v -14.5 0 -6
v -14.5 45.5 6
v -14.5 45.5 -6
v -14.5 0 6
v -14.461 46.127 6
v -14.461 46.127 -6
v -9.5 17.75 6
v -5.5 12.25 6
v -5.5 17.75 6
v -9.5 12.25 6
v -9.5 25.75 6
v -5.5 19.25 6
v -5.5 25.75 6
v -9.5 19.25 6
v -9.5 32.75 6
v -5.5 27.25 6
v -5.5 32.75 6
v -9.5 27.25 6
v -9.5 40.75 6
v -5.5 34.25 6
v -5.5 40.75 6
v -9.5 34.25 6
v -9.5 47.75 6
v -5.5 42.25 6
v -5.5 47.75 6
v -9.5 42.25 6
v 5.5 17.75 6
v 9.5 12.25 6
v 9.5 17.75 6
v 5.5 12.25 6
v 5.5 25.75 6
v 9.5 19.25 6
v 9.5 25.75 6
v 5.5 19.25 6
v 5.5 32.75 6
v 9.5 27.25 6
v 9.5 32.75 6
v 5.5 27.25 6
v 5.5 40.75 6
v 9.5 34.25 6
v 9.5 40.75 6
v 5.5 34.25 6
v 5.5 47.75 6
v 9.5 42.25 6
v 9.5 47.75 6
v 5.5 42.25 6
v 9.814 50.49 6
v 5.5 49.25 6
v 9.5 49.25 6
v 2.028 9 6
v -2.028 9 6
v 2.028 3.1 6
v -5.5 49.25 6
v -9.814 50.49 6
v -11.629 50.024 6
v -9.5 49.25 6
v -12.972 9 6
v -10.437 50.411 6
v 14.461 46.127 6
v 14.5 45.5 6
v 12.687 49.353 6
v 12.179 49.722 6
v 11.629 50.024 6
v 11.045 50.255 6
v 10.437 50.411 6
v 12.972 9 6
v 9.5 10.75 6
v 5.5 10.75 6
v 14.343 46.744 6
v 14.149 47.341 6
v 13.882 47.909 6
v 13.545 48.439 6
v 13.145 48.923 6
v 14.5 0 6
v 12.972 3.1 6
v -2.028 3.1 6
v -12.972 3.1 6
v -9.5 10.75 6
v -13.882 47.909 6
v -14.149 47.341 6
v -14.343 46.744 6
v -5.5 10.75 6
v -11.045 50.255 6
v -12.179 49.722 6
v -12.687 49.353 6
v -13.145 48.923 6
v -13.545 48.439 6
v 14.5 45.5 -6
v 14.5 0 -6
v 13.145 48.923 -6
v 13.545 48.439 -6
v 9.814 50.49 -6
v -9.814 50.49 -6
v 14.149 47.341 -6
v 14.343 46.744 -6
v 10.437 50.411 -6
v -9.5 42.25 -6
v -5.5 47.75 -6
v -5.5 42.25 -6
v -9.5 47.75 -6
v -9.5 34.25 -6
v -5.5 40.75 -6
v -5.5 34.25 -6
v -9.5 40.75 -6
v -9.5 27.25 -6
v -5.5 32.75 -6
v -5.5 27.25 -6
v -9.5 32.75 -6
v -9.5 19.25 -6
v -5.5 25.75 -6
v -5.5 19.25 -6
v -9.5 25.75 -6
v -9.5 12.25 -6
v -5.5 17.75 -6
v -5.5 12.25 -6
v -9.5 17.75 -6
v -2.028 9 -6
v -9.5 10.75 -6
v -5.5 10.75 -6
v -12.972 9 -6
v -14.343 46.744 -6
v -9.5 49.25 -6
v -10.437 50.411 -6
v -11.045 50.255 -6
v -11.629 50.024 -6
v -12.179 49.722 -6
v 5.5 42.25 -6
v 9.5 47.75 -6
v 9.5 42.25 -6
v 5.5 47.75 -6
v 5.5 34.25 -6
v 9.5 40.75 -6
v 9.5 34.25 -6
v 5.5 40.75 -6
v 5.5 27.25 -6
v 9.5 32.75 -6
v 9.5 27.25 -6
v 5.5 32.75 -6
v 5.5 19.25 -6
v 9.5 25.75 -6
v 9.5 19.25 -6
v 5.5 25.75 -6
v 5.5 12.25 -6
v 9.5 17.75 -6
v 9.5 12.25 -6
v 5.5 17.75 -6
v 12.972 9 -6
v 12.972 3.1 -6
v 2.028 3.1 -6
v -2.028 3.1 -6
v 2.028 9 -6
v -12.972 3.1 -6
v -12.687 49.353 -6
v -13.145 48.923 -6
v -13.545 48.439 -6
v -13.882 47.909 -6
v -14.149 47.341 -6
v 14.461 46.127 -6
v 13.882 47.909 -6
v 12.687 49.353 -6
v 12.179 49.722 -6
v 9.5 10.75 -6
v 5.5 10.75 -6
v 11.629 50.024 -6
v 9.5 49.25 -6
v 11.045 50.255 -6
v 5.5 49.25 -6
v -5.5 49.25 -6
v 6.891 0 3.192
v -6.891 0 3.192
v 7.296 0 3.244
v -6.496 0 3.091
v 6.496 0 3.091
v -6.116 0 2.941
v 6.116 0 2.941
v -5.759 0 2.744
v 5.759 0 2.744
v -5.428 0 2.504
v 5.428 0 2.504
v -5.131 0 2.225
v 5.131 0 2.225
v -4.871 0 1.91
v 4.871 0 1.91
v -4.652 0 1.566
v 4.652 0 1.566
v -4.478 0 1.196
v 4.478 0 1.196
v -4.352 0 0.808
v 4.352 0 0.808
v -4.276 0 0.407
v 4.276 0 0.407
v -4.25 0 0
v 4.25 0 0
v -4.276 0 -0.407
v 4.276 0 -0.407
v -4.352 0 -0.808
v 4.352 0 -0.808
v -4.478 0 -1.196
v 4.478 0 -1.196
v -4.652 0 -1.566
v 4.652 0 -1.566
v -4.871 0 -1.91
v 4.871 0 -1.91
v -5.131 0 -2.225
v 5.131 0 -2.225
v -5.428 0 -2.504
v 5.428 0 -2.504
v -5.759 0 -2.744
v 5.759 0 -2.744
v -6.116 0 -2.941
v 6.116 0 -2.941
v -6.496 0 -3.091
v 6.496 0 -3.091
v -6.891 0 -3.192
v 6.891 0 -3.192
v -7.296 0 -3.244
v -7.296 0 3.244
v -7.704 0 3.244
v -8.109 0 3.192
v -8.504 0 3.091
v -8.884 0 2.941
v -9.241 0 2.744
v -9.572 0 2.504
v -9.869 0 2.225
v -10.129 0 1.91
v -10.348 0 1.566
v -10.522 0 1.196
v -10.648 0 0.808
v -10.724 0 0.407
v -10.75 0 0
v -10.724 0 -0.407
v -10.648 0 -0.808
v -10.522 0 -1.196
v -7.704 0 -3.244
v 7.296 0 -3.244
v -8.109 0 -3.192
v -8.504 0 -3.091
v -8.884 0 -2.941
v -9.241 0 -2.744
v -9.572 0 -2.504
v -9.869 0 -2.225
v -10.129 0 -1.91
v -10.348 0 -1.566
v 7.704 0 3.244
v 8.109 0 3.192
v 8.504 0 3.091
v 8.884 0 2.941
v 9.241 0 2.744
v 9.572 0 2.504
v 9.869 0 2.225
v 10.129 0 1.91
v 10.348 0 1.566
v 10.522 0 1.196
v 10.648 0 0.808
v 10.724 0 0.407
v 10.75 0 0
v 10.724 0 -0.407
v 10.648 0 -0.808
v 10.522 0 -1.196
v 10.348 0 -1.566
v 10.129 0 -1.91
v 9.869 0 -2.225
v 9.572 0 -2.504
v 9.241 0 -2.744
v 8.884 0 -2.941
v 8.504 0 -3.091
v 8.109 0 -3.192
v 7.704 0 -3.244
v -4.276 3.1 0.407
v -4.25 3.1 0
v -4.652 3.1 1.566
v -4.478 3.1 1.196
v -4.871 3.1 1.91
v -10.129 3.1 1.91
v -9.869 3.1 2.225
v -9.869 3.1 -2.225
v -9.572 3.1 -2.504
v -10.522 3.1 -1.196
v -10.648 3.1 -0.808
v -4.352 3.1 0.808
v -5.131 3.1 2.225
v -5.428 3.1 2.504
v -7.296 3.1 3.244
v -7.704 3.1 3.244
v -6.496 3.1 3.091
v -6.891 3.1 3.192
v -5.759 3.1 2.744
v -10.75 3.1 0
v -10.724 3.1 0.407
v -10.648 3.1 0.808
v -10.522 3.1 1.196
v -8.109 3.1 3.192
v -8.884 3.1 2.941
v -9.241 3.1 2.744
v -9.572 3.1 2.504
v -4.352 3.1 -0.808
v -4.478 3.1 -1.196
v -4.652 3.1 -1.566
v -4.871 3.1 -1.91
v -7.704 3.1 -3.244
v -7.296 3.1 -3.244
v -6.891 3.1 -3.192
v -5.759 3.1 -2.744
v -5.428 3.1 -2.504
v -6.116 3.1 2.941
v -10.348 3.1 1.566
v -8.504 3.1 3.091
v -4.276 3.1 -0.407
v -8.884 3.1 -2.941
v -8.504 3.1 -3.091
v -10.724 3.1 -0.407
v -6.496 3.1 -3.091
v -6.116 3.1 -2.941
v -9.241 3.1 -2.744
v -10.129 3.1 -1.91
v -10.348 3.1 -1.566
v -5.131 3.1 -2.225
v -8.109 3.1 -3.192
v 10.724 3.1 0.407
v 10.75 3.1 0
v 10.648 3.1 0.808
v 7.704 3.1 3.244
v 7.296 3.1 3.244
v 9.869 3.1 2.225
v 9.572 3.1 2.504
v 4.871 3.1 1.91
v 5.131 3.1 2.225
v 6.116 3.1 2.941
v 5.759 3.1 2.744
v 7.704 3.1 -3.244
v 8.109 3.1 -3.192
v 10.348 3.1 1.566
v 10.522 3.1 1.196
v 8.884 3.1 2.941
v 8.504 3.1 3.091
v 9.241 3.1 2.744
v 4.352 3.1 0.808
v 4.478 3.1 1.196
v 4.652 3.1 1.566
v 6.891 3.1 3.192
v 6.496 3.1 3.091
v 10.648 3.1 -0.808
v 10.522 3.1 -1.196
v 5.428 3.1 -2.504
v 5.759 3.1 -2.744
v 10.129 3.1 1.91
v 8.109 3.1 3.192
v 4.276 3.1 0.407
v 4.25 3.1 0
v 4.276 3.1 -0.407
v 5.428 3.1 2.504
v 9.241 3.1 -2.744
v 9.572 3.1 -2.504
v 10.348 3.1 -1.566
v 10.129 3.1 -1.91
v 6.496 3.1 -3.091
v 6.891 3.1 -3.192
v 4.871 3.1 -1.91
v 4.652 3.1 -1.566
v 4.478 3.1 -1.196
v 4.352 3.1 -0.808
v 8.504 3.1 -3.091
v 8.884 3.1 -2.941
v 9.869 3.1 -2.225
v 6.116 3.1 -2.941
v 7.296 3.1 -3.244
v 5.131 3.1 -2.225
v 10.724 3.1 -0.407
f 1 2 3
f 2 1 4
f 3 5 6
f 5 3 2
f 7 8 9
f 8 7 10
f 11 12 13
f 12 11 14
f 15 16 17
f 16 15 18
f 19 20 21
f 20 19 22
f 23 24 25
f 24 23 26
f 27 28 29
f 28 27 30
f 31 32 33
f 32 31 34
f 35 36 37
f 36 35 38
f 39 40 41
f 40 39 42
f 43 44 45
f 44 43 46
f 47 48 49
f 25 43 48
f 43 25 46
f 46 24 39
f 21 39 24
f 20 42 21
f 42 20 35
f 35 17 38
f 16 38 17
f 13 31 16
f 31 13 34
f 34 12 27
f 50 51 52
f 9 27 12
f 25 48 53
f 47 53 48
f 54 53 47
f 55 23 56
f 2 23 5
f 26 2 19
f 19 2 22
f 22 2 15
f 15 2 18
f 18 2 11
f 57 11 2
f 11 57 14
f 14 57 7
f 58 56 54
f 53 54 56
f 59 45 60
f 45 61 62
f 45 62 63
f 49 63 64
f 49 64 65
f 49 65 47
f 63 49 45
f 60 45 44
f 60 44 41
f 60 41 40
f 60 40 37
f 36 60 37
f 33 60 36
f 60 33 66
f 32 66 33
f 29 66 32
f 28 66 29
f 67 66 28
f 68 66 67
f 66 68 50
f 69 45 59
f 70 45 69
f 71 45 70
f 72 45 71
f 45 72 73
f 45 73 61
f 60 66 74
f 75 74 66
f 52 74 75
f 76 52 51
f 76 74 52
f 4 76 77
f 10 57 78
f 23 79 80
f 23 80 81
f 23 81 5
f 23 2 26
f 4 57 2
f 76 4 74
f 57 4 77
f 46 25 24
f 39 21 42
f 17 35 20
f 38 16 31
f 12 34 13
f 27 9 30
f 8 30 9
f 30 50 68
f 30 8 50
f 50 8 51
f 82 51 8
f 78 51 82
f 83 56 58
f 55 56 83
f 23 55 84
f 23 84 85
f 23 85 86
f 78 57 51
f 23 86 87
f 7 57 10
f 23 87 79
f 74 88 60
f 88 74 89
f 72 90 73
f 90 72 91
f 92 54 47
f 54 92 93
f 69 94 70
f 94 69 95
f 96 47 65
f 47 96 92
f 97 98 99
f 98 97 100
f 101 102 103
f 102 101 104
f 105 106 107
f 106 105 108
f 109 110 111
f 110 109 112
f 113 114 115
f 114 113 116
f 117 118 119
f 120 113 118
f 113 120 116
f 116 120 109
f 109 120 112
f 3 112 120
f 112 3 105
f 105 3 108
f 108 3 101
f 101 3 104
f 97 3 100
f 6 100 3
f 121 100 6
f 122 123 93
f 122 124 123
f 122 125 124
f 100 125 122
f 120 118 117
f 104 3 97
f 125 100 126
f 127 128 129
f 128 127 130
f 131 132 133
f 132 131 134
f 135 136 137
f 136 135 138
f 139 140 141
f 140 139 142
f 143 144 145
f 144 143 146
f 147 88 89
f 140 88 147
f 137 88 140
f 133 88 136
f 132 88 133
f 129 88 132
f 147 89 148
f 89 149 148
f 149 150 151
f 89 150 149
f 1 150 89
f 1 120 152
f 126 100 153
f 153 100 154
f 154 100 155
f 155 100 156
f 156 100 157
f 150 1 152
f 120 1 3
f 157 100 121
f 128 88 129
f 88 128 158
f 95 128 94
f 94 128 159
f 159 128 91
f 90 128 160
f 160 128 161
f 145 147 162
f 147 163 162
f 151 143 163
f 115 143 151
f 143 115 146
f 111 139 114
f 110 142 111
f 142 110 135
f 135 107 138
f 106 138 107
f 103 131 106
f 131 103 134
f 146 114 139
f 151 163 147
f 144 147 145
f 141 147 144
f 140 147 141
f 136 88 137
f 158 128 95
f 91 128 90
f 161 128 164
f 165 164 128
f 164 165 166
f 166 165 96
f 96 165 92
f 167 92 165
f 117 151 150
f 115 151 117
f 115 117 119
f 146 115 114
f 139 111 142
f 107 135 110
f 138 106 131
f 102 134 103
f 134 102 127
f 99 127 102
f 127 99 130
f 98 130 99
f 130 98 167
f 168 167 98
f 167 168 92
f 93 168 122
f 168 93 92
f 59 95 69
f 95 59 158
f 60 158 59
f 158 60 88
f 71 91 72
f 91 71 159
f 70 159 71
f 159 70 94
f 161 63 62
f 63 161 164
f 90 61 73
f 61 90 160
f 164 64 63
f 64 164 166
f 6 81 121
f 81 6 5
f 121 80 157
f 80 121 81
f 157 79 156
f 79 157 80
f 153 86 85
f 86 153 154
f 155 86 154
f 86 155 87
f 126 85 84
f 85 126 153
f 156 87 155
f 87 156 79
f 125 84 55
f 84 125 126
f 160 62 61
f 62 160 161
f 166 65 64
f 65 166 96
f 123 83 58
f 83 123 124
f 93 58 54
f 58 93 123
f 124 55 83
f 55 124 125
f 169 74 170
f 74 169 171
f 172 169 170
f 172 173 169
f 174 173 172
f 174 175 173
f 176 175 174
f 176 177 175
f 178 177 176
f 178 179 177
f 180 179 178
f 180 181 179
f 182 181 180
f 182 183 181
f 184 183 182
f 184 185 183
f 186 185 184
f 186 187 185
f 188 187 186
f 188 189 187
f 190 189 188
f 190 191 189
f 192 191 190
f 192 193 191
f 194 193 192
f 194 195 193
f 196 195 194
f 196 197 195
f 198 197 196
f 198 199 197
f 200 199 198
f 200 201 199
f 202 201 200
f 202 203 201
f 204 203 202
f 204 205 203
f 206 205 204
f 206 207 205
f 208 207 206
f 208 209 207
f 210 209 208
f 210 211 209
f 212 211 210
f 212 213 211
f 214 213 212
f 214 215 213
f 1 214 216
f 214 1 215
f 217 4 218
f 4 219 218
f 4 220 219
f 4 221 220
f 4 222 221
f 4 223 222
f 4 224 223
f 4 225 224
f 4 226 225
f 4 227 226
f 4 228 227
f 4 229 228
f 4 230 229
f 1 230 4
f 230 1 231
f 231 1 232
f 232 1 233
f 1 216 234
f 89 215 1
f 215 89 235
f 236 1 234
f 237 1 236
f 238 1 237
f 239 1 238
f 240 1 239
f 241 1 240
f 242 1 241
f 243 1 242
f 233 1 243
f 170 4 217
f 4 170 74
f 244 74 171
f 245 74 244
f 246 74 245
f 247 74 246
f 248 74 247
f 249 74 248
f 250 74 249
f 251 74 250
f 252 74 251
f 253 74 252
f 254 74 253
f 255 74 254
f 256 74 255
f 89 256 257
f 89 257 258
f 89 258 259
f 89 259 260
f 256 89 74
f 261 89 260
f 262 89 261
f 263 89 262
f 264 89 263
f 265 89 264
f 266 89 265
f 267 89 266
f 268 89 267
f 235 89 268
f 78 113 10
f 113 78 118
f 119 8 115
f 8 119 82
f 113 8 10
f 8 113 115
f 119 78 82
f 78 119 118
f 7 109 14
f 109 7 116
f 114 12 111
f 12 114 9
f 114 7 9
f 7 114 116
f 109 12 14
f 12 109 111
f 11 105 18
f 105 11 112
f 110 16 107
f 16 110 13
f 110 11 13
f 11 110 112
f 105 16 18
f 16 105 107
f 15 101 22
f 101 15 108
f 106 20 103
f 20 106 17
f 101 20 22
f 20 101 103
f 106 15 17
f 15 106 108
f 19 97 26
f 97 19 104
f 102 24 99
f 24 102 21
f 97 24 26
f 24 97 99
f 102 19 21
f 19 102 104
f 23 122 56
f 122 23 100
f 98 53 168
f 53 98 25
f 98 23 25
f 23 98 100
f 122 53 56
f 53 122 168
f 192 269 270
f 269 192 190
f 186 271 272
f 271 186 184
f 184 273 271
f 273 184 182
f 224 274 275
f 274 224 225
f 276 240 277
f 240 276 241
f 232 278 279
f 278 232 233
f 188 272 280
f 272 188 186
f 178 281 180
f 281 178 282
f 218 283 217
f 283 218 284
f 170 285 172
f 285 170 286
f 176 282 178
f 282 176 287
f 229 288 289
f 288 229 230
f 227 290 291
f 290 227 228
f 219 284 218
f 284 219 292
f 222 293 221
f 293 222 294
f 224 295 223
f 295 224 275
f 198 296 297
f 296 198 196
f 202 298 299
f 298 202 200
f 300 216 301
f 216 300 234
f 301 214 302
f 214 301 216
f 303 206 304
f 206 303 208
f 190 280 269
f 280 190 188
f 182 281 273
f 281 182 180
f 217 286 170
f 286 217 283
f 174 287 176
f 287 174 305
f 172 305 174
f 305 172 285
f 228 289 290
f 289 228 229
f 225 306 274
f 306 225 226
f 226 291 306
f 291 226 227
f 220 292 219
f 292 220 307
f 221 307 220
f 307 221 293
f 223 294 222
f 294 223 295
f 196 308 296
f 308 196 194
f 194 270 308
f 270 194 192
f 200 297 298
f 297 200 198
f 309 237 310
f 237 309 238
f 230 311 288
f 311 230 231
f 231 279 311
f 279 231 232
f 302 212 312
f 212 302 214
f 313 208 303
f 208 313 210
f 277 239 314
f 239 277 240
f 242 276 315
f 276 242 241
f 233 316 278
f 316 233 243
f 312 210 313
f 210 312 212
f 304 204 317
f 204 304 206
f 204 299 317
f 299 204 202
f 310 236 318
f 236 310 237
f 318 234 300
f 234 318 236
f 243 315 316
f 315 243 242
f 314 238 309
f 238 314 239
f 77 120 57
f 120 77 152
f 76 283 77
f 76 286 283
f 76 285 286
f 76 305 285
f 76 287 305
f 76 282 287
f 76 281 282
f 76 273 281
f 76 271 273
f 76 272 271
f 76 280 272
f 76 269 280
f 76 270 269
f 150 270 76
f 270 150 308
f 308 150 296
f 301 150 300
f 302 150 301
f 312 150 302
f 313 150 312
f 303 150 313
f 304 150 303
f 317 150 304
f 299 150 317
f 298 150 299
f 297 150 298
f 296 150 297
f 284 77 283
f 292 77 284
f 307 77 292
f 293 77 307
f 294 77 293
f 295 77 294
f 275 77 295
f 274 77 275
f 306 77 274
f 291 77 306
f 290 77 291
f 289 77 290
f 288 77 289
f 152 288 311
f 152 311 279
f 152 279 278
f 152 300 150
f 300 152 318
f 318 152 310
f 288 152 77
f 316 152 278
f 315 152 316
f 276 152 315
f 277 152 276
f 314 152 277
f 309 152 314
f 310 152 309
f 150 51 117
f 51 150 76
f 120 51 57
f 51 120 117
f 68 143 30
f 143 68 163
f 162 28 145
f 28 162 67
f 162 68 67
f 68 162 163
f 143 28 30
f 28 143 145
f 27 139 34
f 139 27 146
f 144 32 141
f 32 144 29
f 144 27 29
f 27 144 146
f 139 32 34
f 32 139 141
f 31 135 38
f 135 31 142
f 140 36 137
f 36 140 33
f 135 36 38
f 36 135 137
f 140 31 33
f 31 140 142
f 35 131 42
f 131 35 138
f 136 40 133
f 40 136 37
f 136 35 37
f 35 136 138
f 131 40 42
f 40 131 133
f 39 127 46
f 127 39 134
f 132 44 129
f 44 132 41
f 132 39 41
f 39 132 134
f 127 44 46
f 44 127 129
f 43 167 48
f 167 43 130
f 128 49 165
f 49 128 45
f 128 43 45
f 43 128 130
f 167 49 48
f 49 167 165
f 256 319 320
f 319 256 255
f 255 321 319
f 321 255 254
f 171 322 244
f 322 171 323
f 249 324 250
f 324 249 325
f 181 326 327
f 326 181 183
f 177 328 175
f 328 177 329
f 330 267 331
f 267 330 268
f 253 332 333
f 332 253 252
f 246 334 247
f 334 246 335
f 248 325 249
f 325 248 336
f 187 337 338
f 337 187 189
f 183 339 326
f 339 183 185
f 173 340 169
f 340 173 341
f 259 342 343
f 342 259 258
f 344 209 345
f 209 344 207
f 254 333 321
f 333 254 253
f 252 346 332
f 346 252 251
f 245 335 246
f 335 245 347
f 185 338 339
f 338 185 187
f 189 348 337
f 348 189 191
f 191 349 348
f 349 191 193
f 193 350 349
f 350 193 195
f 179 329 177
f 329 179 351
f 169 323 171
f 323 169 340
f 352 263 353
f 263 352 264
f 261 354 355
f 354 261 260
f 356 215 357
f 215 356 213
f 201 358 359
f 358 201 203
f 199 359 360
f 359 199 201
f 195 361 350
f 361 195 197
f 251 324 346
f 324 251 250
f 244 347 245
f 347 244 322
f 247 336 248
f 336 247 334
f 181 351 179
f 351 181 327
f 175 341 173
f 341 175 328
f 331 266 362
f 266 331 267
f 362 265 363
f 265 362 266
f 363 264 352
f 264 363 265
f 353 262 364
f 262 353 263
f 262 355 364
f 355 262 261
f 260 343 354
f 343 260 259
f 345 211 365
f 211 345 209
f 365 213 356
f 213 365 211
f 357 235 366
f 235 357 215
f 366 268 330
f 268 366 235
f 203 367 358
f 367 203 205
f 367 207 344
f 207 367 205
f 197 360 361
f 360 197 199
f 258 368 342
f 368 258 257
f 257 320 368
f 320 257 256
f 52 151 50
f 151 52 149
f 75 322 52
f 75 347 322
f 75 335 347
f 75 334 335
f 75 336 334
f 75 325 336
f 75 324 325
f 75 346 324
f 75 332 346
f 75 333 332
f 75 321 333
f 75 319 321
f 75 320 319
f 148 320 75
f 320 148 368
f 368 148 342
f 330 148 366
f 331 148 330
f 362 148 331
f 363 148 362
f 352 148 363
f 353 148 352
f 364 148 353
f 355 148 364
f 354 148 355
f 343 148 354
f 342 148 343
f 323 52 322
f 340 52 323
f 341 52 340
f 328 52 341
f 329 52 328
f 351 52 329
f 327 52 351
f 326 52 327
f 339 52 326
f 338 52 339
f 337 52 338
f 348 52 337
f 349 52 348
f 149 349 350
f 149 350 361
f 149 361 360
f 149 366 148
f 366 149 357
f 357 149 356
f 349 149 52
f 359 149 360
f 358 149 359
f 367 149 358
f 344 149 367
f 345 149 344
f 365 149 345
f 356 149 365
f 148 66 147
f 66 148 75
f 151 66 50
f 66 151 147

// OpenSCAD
$fn = 50;


difference() {
	union() {
		translate(v = [0, 28.5000000000, -6.0000000000]) {
			rotate(a = [0, 0, 0]) {
				hull() {
					translate(v = [-9.5000000000, 17.0000000000, 0]) {
						rotate(a = [0, 0, 0]) {
							translate(v = [0, 0, 0]) {
								rotate(a = [0, 0, 0]) {
									cylinder(h = 12, r = 5);
								}
							}
						}
					}
					translate(v = [9.5000000000, 17.0000000000, 0]) {
						rotate(a = [0, 0, 0]) {
							translate(v = [0, 0, 0]) {
								rotate(a = [0, 0, 0]) {
									cylinder(h = 12, r = 5);
								}
							}
						}
					}
					translate(v = [-9.5000000000, -17.0000000000, 0]) {
						rotate(a = [0, 0, 0]) {
							translate(v = [0, 0, 0]) {
								rotate(a = [0, 0, 0]) {
									cylinder(h = 12, r = 5);
								}
							}
						}
					}
					translate(v = [9.5000000000, -17.0000000000, 0]) {
						rotate(a = [0, 0, 0]) {
							translate(v = [0, 0, 0]) {
								rotate(a = [0, 0, 0]) {
									cylinder(h = 12, r = 5);
								}
							}
						}
					}
				}
			}
		}
		translate(v = [-14.5000000000, 0, -6.0000000000]) {
			rotate(a = [0, 0, 0]) {
				cube(size = [29, 13.5000000000, 12]);
			}
		}
	}
	union() {
		translate(v = [-9.5000000000, 10.7500000000, -50]) {
			rotate(a = [0, 0, 0]) {
				cube(size = [4, 1.5000000000, 100]);
			}
		}
		translate(v = [-9.5000000000, 17.7500000000, -50]) {
			rotate(a = [0, 0, 0]) {
				cube(size = [4, 1.5000000000, 100]);
			}
		}
		translate(v = [-9.5000000000, 25.7500000000, -50]) {
			rotate(a = [0, 0, 0]) {
				cube(size = [4, 1.5000000000, 100]);
			}
		}
		translate(v = [-9.5000000000, 32.7500000000, -50]) {
			rotate(a = [0, 0, 0]) {
				cube(size = [4, 1.5000000000, 100]);
			}
		}
		translate(v = [-9.5000000000, 40.7500000000, -50]) {
			rotate(a = [0, 0, 0]) {
				cube(size = [4, 1.5000000000, 100]);
			}
		}
		translate(v = [-9.5000000000, 47.7500000000, -50]) {
			rotate(a = [0, 0, 0]) {
				cube(size = [4, 1.5000000000, 100]);
			}
		}
		translate(v = [-7.5000000000, 8, 0]) {
			rotate(a = [90, 0, 0]) {
				cylinder(h = 8, r = 3.2500000000);
			}
		}
		translate(v = [-12.9716204506, 9, -25]) {
			rotate(a = [90, 0, 0]) {
				cube(size = [10.9432409012, 100, 5.9000000000]);
			}
		}
		translate(v = [5.5000000000, 10.7500000000, -50]) {
			rotate(a = [0, 0, 0]) {
				cube(size = [4, 1.5000000000, 100]);
			}
		}
		translate(v = [5.5000000000, 17.7500000000, -50]) {
			rotate(a = [0, 0, 0]) {
				cube(size = [4, 1.5000000000, 100]);
			}
		}
		translate(v = [5.5000000000, 25.7500000000, -50]) {
			rotate(a = [0, 0, 0]) {
				cube(size = [4, 1.5000000000, 100]);
			}
		}
		translate(v = [5.5000000000, 32.7500000000, -50]) {
			rotate(a = [0, 0, 0]) {
				cube(size = [4, 1.5000000000, 100]);
			}
		}
		translate(v = [5.5000000000, 40.7500000000, -50]) {
			rotate(a = [0, 0, 0]) {
				cube(size = [4, 1.5000000000, 100]);
			}
		}
		translate(v = [5.5000000000, 47.7500000000, -50]) {
			rotate(a = [0, 0, 0]) {
				cube(size = [4, 1.5000000000, 100]);
			}
		}
		translate(v = [7.5000000000, 8, 0]) {
			rotate(a = [90, 0, 0]) {
				cylinder(h = 8, r = 3.2500000000);
			}
		}
		translate(v = [2.0283795494, 9, -25]) {
			rotate(a = [90, 0, 0]) {
				cube(size = [10.9432409012, 100, 5.9000000000]);
			}
		}
	}
}
